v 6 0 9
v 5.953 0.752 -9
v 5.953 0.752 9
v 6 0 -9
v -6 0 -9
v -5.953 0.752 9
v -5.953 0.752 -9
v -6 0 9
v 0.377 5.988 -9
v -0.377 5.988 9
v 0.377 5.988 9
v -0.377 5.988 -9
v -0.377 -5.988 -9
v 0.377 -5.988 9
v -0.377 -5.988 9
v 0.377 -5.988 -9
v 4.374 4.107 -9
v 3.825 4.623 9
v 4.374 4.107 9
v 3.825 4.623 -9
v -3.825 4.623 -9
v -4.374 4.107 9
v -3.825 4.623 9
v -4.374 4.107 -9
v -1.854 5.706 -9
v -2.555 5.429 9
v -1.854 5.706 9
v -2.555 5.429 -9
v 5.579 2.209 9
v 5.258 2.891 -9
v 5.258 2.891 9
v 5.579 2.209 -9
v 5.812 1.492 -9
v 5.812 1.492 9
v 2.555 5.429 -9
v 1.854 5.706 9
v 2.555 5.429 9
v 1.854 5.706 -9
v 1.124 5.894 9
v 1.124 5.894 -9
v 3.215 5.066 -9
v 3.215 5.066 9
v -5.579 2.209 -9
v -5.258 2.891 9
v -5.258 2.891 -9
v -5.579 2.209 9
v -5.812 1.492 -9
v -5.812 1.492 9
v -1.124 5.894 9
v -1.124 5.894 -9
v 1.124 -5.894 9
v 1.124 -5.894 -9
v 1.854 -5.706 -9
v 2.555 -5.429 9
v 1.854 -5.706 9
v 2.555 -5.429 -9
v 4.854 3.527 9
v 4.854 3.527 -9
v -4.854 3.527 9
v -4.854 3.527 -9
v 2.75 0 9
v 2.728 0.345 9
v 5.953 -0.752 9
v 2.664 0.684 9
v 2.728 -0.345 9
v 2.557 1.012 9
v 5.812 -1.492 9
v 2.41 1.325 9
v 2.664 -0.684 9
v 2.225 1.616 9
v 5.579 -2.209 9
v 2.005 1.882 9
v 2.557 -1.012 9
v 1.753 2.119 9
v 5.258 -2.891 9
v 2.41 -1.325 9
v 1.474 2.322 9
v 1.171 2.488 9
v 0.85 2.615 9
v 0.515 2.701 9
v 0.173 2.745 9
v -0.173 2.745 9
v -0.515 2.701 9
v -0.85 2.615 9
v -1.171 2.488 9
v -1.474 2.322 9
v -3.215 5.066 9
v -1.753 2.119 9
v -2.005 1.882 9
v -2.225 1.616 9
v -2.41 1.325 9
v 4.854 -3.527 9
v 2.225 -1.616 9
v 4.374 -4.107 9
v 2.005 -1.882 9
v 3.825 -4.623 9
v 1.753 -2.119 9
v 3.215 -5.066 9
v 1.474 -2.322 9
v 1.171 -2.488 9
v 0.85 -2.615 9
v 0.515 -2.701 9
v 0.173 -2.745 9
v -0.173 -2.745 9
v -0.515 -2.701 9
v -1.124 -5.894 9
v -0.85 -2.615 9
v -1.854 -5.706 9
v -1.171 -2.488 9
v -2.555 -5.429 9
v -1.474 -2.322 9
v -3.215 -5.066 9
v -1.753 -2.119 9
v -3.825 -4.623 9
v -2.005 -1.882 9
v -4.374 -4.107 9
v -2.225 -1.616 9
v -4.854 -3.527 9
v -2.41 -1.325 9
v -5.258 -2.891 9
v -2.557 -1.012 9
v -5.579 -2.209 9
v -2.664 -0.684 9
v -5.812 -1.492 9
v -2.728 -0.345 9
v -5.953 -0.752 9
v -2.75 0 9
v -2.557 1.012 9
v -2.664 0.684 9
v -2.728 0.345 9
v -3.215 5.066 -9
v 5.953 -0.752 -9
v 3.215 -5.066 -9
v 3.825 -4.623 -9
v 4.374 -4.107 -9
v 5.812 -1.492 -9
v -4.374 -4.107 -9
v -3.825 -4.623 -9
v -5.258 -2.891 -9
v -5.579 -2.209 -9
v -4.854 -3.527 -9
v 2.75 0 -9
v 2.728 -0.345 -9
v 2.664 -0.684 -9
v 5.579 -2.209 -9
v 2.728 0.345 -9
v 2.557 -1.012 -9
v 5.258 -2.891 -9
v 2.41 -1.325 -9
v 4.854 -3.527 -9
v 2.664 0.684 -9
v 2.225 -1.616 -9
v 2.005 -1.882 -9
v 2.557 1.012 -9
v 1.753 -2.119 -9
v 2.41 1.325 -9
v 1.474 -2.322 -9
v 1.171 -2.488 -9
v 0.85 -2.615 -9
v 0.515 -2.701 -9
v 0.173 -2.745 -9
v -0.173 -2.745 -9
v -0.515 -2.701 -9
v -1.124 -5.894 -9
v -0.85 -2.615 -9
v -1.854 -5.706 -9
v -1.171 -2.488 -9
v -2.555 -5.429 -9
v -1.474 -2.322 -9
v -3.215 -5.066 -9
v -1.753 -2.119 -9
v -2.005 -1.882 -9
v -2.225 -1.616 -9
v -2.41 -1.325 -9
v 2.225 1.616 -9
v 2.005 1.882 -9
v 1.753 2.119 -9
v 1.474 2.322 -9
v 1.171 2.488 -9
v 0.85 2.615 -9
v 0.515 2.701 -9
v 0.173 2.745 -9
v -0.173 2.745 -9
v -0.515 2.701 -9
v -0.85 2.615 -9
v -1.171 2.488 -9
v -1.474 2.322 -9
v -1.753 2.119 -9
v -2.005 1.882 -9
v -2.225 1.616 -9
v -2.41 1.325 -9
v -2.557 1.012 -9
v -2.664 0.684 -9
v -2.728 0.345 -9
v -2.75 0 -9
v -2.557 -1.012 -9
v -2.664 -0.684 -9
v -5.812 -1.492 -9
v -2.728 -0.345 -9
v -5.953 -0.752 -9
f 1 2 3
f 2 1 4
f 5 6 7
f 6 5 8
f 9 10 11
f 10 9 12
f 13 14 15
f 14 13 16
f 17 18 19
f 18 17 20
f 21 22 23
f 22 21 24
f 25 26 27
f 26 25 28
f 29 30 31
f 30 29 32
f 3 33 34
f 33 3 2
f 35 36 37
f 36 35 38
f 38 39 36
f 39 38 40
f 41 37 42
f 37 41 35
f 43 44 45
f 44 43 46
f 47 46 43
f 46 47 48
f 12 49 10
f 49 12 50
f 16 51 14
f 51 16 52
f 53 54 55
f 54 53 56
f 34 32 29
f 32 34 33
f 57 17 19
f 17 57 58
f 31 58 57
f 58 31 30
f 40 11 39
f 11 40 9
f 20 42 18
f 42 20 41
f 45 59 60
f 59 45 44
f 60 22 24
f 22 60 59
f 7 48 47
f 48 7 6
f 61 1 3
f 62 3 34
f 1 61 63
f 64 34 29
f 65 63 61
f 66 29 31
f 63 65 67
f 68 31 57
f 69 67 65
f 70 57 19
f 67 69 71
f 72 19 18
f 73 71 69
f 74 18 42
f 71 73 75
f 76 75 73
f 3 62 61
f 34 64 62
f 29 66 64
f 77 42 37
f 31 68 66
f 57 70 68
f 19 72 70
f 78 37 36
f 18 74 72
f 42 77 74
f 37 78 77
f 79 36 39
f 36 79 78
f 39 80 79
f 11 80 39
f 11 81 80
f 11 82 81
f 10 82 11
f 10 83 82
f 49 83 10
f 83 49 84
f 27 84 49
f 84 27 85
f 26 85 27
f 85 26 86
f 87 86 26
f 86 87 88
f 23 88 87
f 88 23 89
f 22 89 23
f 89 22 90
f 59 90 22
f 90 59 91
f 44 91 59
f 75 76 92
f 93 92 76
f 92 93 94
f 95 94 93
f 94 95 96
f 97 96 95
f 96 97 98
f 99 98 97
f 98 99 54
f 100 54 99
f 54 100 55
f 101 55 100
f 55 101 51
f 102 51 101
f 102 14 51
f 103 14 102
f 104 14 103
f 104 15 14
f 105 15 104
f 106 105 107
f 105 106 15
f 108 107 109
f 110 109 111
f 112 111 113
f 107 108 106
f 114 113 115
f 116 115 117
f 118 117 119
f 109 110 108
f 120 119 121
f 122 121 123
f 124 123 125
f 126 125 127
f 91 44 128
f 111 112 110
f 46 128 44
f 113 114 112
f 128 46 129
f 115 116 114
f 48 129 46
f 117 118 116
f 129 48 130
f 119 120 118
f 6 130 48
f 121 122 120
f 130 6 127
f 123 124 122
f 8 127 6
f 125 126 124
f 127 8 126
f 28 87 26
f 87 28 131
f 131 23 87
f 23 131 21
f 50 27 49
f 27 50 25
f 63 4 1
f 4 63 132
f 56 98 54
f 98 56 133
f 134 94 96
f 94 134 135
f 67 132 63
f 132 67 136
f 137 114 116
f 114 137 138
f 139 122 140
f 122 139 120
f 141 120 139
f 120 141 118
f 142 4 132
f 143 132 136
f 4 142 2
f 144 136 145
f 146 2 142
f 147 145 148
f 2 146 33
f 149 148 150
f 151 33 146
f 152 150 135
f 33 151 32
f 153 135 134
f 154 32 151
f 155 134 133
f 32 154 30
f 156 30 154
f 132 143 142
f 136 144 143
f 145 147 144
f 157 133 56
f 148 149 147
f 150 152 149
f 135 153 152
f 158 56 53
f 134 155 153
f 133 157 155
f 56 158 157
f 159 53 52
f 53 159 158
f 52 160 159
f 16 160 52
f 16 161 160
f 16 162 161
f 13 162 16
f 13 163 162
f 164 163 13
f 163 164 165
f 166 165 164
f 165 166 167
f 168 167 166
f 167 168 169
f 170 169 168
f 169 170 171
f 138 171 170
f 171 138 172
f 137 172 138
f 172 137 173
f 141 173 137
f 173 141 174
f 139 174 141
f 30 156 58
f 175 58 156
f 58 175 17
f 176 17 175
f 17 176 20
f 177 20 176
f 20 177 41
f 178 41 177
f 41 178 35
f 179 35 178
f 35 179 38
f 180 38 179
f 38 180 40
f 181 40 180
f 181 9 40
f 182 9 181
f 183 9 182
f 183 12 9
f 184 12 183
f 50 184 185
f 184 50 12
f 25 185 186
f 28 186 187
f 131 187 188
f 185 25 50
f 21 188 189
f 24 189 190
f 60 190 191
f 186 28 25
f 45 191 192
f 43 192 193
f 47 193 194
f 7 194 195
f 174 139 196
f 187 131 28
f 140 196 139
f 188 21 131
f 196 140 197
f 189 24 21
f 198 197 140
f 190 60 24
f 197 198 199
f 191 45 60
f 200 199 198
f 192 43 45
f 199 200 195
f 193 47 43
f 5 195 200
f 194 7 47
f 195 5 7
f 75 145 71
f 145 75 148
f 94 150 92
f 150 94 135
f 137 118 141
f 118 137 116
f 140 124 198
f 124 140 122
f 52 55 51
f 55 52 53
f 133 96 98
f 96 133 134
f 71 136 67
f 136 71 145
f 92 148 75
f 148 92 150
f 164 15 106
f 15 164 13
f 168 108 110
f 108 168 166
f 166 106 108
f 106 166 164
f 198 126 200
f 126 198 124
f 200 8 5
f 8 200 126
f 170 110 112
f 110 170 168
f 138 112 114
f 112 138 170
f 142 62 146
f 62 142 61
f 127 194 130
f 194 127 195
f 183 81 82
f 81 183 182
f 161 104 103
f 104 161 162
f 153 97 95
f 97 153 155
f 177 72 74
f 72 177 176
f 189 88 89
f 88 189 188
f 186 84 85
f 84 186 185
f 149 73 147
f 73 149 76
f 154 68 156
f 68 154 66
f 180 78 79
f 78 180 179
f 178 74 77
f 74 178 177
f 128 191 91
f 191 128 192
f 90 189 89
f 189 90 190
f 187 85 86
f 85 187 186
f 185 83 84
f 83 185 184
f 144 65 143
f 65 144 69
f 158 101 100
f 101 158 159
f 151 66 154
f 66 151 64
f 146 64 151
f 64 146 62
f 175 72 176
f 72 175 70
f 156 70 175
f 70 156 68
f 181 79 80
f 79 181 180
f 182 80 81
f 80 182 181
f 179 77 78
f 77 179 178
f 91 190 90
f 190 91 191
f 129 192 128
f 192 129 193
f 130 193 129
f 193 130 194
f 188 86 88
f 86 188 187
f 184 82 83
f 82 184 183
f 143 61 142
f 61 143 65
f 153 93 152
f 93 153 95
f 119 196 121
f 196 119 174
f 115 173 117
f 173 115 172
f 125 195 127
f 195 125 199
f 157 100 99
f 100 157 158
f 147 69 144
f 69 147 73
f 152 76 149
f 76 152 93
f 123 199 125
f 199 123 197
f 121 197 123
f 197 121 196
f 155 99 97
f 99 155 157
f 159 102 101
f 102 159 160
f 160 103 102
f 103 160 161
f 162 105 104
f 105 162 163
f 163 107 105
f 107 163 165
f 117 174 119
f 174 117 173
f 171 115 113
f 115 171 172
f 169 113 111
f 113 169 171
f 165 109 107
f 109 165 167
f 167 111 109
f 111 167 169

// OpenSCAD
$fn = 50;


difference() {
	union() {
		translate(v = [0, 0, -9.0000000000]) {
			cylinder(h = 18, r = 6.0000000000);
		}
	}
	union() {
		translate(v = [0, 0, -100.0000000000]) {
			cylinder(h = 200, r = 2.7500000000);
		}
	}
}
